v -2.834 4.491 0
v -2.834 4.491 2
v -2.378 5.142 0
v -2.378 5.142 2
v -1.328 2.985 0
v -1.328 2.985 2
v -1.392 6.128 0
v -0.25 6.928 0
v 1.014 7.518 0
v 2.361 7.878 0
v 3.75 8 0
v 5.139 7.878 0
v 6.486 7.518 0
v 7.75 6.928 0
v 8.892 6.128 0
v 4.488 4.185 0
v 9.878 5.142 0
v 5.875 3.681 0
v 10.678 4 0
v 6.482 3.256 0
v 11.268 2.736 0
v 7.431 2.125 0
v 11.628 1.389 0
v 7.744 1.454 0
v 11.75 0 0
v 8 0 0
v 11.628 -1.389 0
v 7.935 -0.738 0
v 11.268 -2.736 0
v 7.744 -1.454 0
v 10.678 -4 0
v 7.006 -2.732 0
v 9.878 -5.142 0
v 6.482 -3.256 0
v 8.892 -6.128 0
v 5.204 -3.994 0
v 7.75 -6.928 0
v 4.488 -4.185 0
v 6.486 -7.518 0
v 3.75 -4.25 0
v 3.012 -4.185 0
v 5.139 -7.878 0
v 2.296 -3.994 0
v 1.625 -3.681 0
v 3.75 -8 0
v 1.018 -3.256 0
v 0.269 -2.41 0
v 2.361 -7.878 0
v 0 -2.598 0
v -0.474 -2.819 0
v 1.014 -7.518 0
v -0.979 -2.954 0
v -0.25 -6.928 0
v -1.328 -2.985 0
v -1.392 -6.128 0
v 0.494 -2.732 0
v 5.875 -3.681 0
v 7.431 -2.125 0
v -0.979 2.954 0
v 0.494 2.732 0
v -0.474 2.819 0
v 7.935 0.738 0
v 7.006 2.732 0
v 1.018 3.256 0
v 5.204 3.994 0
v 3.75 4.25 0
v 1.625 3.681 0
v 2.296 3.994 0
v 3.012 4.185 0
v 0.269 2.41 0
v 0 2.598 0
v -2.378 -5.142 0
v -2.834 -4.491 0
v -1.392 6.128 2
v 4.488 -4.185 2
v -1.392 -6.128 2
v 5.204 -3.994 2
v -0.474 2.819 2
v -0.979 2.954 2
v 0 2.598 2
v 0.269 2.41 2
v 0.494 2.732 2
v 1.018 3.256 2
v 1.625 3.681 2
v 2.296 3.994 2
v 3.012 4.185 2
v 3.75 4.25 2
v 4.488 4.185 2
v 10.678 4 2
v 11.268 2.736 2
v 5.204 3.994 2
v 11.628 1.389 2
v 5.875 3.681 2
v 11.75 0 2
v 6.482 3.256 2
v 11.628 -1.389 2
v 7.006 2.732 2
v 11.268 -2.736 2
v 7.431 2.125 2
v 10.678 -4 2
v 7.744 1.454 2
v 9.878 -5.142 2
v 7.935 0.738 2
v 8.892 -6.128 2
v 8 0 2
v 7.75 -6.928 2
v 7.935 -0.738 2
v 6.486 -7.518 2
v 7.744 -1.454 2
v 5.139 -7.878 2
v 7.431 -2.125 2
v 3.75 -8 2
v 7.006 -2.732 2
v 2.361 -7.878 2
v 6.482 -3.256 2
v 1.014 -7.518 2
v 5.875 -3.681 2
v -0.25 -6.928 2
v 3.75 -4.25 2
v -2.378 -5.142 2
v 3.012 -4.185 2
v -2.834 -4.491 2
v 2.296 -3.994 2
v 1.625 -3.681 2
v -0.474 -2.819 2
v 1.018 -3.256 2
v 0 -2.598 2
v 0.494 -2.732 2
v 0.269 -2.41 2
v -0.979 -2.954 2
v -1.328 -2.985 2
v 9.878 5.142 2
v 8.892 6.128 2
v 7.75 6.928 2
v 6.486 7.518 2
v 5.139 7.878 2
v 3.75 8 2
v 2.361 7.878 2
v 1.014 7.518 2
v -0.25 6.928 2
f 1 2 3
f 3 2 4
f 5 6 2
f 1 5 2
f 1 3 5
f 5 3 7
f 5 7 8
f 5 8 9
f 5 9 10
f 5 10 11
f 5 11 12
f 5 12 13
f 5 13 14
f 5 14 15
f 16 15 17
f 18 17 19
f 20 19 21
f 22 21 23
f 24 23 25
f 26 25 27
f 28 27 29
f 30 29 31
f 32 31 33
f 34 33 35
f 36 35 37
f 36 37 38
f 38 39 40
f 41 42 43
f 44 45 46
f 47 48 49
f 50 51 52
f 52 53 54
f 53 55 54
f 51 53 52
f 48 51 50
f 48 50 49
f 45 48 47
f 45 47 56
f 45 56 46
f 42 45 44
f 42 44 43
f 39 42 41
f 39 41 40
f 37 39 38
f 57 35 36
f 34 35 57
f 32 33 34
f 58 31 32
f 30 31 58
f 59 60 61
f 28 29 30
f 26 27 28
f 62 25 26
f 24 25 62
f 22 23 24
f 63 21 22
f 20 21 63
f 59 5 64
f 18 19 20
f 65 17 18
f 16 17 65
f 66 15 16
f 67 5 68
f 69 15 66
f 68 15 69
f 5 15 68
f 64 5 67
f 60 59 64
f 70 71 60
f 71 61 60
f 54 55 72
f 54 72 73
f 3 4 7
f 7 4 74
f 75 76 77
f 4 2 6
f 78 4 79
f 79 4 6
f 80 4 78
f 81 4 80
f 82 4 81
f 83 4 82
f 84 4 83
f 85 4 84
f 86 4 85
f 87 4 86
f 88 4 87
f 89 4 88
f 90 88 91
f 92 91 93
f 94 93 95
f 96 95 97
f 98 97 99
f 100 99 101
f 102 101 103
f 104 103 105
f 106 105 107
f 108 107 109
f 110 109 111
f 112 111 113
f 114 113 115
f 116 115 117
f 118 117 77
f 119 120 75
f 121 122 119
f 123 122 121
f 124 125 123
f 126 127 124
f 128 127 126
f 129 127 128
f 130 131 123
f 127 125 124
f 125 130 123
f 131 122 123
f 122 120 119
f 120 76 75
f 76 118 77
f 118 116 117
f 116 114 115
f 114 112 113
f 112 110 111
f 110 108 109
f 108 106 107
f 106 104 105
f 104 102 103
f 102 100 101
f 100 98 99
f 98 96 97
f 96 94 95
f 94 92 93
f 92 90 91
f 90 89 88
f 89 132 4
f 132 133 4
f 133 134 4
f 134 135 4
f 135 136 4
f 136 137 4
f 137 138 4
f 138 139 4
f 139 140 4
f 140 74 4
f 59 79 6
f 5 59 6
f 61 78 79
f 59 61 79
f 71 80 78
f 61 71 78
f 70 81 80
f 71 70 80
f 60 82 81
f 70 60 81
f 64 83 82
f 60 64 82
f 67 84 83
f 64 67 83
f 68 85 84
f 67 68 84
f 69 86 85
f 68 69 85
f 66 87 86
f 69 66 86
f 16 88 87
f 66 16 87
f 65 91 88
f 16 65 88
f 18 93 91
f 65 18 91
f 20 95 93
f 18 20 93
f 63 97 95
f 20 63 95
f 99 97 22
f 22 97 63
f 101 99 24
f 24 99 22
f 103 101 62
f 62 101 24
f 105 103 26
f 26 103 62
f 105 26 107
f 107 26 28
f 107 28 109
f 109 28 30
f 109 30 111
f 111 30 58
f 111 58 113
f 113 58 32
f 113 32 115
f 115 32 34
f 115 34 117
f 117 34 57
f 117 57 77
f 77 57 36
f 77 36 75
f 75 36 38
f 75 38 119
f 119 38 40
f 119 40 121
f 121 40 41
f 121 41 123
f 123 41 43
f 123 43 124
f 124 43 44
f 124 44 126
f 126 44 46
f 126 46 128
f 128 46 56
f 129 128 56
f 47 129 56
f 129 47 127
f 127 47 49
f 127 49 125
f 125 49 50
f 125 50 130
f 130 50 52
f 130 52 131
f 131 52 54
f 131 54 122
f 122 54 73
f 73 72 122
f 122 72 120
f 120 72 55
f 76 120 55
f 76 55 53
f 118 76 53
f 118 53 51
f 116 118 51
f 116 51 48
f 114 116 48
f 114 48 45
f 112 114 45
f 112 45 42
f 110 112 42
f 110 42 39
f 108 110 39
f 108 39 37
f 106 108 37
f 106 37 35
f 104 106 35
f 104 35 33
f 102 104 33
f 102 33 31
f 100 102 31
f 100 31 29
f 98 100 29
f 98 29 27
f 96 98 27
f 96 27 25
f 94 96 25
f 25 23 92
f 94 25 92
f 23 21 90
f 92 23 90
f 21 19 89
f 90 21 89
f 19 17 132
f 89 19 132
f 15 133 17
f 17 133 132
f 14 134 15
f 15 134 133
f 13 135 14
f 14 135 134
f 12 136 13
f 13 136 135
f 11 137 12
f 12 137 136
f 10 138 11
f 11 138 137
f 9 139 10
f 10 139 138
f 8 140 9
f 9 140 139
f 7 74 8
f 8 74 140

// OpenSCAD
module cring(x, y) {
  difference() {
    translate([x +  3.75, y, 0]) cylinder(r=8, h = 2, $fn = 36);
    translate([x +  3.75, y, 0]) cylinder(r=4.25, h = 2, $fn = 36);
    translate([x + -4,    y, 0])
      rotate([0, 0, 45])
        translate([-4, -4, 0])
          cube([8, 8, 2]);
    translate([x + -1.5, y, 0]) cylinder(r=3, h = 2, $fn = 36);
    translate([x + -1,   y, 0]) cylinder(r=2.5, h = 2, $fn = 36);
  }
}

// multiple C-rings
// for (j=[0:1]) for (i=[0:3]) cring(i*15, j*18);

cring(0,0);
